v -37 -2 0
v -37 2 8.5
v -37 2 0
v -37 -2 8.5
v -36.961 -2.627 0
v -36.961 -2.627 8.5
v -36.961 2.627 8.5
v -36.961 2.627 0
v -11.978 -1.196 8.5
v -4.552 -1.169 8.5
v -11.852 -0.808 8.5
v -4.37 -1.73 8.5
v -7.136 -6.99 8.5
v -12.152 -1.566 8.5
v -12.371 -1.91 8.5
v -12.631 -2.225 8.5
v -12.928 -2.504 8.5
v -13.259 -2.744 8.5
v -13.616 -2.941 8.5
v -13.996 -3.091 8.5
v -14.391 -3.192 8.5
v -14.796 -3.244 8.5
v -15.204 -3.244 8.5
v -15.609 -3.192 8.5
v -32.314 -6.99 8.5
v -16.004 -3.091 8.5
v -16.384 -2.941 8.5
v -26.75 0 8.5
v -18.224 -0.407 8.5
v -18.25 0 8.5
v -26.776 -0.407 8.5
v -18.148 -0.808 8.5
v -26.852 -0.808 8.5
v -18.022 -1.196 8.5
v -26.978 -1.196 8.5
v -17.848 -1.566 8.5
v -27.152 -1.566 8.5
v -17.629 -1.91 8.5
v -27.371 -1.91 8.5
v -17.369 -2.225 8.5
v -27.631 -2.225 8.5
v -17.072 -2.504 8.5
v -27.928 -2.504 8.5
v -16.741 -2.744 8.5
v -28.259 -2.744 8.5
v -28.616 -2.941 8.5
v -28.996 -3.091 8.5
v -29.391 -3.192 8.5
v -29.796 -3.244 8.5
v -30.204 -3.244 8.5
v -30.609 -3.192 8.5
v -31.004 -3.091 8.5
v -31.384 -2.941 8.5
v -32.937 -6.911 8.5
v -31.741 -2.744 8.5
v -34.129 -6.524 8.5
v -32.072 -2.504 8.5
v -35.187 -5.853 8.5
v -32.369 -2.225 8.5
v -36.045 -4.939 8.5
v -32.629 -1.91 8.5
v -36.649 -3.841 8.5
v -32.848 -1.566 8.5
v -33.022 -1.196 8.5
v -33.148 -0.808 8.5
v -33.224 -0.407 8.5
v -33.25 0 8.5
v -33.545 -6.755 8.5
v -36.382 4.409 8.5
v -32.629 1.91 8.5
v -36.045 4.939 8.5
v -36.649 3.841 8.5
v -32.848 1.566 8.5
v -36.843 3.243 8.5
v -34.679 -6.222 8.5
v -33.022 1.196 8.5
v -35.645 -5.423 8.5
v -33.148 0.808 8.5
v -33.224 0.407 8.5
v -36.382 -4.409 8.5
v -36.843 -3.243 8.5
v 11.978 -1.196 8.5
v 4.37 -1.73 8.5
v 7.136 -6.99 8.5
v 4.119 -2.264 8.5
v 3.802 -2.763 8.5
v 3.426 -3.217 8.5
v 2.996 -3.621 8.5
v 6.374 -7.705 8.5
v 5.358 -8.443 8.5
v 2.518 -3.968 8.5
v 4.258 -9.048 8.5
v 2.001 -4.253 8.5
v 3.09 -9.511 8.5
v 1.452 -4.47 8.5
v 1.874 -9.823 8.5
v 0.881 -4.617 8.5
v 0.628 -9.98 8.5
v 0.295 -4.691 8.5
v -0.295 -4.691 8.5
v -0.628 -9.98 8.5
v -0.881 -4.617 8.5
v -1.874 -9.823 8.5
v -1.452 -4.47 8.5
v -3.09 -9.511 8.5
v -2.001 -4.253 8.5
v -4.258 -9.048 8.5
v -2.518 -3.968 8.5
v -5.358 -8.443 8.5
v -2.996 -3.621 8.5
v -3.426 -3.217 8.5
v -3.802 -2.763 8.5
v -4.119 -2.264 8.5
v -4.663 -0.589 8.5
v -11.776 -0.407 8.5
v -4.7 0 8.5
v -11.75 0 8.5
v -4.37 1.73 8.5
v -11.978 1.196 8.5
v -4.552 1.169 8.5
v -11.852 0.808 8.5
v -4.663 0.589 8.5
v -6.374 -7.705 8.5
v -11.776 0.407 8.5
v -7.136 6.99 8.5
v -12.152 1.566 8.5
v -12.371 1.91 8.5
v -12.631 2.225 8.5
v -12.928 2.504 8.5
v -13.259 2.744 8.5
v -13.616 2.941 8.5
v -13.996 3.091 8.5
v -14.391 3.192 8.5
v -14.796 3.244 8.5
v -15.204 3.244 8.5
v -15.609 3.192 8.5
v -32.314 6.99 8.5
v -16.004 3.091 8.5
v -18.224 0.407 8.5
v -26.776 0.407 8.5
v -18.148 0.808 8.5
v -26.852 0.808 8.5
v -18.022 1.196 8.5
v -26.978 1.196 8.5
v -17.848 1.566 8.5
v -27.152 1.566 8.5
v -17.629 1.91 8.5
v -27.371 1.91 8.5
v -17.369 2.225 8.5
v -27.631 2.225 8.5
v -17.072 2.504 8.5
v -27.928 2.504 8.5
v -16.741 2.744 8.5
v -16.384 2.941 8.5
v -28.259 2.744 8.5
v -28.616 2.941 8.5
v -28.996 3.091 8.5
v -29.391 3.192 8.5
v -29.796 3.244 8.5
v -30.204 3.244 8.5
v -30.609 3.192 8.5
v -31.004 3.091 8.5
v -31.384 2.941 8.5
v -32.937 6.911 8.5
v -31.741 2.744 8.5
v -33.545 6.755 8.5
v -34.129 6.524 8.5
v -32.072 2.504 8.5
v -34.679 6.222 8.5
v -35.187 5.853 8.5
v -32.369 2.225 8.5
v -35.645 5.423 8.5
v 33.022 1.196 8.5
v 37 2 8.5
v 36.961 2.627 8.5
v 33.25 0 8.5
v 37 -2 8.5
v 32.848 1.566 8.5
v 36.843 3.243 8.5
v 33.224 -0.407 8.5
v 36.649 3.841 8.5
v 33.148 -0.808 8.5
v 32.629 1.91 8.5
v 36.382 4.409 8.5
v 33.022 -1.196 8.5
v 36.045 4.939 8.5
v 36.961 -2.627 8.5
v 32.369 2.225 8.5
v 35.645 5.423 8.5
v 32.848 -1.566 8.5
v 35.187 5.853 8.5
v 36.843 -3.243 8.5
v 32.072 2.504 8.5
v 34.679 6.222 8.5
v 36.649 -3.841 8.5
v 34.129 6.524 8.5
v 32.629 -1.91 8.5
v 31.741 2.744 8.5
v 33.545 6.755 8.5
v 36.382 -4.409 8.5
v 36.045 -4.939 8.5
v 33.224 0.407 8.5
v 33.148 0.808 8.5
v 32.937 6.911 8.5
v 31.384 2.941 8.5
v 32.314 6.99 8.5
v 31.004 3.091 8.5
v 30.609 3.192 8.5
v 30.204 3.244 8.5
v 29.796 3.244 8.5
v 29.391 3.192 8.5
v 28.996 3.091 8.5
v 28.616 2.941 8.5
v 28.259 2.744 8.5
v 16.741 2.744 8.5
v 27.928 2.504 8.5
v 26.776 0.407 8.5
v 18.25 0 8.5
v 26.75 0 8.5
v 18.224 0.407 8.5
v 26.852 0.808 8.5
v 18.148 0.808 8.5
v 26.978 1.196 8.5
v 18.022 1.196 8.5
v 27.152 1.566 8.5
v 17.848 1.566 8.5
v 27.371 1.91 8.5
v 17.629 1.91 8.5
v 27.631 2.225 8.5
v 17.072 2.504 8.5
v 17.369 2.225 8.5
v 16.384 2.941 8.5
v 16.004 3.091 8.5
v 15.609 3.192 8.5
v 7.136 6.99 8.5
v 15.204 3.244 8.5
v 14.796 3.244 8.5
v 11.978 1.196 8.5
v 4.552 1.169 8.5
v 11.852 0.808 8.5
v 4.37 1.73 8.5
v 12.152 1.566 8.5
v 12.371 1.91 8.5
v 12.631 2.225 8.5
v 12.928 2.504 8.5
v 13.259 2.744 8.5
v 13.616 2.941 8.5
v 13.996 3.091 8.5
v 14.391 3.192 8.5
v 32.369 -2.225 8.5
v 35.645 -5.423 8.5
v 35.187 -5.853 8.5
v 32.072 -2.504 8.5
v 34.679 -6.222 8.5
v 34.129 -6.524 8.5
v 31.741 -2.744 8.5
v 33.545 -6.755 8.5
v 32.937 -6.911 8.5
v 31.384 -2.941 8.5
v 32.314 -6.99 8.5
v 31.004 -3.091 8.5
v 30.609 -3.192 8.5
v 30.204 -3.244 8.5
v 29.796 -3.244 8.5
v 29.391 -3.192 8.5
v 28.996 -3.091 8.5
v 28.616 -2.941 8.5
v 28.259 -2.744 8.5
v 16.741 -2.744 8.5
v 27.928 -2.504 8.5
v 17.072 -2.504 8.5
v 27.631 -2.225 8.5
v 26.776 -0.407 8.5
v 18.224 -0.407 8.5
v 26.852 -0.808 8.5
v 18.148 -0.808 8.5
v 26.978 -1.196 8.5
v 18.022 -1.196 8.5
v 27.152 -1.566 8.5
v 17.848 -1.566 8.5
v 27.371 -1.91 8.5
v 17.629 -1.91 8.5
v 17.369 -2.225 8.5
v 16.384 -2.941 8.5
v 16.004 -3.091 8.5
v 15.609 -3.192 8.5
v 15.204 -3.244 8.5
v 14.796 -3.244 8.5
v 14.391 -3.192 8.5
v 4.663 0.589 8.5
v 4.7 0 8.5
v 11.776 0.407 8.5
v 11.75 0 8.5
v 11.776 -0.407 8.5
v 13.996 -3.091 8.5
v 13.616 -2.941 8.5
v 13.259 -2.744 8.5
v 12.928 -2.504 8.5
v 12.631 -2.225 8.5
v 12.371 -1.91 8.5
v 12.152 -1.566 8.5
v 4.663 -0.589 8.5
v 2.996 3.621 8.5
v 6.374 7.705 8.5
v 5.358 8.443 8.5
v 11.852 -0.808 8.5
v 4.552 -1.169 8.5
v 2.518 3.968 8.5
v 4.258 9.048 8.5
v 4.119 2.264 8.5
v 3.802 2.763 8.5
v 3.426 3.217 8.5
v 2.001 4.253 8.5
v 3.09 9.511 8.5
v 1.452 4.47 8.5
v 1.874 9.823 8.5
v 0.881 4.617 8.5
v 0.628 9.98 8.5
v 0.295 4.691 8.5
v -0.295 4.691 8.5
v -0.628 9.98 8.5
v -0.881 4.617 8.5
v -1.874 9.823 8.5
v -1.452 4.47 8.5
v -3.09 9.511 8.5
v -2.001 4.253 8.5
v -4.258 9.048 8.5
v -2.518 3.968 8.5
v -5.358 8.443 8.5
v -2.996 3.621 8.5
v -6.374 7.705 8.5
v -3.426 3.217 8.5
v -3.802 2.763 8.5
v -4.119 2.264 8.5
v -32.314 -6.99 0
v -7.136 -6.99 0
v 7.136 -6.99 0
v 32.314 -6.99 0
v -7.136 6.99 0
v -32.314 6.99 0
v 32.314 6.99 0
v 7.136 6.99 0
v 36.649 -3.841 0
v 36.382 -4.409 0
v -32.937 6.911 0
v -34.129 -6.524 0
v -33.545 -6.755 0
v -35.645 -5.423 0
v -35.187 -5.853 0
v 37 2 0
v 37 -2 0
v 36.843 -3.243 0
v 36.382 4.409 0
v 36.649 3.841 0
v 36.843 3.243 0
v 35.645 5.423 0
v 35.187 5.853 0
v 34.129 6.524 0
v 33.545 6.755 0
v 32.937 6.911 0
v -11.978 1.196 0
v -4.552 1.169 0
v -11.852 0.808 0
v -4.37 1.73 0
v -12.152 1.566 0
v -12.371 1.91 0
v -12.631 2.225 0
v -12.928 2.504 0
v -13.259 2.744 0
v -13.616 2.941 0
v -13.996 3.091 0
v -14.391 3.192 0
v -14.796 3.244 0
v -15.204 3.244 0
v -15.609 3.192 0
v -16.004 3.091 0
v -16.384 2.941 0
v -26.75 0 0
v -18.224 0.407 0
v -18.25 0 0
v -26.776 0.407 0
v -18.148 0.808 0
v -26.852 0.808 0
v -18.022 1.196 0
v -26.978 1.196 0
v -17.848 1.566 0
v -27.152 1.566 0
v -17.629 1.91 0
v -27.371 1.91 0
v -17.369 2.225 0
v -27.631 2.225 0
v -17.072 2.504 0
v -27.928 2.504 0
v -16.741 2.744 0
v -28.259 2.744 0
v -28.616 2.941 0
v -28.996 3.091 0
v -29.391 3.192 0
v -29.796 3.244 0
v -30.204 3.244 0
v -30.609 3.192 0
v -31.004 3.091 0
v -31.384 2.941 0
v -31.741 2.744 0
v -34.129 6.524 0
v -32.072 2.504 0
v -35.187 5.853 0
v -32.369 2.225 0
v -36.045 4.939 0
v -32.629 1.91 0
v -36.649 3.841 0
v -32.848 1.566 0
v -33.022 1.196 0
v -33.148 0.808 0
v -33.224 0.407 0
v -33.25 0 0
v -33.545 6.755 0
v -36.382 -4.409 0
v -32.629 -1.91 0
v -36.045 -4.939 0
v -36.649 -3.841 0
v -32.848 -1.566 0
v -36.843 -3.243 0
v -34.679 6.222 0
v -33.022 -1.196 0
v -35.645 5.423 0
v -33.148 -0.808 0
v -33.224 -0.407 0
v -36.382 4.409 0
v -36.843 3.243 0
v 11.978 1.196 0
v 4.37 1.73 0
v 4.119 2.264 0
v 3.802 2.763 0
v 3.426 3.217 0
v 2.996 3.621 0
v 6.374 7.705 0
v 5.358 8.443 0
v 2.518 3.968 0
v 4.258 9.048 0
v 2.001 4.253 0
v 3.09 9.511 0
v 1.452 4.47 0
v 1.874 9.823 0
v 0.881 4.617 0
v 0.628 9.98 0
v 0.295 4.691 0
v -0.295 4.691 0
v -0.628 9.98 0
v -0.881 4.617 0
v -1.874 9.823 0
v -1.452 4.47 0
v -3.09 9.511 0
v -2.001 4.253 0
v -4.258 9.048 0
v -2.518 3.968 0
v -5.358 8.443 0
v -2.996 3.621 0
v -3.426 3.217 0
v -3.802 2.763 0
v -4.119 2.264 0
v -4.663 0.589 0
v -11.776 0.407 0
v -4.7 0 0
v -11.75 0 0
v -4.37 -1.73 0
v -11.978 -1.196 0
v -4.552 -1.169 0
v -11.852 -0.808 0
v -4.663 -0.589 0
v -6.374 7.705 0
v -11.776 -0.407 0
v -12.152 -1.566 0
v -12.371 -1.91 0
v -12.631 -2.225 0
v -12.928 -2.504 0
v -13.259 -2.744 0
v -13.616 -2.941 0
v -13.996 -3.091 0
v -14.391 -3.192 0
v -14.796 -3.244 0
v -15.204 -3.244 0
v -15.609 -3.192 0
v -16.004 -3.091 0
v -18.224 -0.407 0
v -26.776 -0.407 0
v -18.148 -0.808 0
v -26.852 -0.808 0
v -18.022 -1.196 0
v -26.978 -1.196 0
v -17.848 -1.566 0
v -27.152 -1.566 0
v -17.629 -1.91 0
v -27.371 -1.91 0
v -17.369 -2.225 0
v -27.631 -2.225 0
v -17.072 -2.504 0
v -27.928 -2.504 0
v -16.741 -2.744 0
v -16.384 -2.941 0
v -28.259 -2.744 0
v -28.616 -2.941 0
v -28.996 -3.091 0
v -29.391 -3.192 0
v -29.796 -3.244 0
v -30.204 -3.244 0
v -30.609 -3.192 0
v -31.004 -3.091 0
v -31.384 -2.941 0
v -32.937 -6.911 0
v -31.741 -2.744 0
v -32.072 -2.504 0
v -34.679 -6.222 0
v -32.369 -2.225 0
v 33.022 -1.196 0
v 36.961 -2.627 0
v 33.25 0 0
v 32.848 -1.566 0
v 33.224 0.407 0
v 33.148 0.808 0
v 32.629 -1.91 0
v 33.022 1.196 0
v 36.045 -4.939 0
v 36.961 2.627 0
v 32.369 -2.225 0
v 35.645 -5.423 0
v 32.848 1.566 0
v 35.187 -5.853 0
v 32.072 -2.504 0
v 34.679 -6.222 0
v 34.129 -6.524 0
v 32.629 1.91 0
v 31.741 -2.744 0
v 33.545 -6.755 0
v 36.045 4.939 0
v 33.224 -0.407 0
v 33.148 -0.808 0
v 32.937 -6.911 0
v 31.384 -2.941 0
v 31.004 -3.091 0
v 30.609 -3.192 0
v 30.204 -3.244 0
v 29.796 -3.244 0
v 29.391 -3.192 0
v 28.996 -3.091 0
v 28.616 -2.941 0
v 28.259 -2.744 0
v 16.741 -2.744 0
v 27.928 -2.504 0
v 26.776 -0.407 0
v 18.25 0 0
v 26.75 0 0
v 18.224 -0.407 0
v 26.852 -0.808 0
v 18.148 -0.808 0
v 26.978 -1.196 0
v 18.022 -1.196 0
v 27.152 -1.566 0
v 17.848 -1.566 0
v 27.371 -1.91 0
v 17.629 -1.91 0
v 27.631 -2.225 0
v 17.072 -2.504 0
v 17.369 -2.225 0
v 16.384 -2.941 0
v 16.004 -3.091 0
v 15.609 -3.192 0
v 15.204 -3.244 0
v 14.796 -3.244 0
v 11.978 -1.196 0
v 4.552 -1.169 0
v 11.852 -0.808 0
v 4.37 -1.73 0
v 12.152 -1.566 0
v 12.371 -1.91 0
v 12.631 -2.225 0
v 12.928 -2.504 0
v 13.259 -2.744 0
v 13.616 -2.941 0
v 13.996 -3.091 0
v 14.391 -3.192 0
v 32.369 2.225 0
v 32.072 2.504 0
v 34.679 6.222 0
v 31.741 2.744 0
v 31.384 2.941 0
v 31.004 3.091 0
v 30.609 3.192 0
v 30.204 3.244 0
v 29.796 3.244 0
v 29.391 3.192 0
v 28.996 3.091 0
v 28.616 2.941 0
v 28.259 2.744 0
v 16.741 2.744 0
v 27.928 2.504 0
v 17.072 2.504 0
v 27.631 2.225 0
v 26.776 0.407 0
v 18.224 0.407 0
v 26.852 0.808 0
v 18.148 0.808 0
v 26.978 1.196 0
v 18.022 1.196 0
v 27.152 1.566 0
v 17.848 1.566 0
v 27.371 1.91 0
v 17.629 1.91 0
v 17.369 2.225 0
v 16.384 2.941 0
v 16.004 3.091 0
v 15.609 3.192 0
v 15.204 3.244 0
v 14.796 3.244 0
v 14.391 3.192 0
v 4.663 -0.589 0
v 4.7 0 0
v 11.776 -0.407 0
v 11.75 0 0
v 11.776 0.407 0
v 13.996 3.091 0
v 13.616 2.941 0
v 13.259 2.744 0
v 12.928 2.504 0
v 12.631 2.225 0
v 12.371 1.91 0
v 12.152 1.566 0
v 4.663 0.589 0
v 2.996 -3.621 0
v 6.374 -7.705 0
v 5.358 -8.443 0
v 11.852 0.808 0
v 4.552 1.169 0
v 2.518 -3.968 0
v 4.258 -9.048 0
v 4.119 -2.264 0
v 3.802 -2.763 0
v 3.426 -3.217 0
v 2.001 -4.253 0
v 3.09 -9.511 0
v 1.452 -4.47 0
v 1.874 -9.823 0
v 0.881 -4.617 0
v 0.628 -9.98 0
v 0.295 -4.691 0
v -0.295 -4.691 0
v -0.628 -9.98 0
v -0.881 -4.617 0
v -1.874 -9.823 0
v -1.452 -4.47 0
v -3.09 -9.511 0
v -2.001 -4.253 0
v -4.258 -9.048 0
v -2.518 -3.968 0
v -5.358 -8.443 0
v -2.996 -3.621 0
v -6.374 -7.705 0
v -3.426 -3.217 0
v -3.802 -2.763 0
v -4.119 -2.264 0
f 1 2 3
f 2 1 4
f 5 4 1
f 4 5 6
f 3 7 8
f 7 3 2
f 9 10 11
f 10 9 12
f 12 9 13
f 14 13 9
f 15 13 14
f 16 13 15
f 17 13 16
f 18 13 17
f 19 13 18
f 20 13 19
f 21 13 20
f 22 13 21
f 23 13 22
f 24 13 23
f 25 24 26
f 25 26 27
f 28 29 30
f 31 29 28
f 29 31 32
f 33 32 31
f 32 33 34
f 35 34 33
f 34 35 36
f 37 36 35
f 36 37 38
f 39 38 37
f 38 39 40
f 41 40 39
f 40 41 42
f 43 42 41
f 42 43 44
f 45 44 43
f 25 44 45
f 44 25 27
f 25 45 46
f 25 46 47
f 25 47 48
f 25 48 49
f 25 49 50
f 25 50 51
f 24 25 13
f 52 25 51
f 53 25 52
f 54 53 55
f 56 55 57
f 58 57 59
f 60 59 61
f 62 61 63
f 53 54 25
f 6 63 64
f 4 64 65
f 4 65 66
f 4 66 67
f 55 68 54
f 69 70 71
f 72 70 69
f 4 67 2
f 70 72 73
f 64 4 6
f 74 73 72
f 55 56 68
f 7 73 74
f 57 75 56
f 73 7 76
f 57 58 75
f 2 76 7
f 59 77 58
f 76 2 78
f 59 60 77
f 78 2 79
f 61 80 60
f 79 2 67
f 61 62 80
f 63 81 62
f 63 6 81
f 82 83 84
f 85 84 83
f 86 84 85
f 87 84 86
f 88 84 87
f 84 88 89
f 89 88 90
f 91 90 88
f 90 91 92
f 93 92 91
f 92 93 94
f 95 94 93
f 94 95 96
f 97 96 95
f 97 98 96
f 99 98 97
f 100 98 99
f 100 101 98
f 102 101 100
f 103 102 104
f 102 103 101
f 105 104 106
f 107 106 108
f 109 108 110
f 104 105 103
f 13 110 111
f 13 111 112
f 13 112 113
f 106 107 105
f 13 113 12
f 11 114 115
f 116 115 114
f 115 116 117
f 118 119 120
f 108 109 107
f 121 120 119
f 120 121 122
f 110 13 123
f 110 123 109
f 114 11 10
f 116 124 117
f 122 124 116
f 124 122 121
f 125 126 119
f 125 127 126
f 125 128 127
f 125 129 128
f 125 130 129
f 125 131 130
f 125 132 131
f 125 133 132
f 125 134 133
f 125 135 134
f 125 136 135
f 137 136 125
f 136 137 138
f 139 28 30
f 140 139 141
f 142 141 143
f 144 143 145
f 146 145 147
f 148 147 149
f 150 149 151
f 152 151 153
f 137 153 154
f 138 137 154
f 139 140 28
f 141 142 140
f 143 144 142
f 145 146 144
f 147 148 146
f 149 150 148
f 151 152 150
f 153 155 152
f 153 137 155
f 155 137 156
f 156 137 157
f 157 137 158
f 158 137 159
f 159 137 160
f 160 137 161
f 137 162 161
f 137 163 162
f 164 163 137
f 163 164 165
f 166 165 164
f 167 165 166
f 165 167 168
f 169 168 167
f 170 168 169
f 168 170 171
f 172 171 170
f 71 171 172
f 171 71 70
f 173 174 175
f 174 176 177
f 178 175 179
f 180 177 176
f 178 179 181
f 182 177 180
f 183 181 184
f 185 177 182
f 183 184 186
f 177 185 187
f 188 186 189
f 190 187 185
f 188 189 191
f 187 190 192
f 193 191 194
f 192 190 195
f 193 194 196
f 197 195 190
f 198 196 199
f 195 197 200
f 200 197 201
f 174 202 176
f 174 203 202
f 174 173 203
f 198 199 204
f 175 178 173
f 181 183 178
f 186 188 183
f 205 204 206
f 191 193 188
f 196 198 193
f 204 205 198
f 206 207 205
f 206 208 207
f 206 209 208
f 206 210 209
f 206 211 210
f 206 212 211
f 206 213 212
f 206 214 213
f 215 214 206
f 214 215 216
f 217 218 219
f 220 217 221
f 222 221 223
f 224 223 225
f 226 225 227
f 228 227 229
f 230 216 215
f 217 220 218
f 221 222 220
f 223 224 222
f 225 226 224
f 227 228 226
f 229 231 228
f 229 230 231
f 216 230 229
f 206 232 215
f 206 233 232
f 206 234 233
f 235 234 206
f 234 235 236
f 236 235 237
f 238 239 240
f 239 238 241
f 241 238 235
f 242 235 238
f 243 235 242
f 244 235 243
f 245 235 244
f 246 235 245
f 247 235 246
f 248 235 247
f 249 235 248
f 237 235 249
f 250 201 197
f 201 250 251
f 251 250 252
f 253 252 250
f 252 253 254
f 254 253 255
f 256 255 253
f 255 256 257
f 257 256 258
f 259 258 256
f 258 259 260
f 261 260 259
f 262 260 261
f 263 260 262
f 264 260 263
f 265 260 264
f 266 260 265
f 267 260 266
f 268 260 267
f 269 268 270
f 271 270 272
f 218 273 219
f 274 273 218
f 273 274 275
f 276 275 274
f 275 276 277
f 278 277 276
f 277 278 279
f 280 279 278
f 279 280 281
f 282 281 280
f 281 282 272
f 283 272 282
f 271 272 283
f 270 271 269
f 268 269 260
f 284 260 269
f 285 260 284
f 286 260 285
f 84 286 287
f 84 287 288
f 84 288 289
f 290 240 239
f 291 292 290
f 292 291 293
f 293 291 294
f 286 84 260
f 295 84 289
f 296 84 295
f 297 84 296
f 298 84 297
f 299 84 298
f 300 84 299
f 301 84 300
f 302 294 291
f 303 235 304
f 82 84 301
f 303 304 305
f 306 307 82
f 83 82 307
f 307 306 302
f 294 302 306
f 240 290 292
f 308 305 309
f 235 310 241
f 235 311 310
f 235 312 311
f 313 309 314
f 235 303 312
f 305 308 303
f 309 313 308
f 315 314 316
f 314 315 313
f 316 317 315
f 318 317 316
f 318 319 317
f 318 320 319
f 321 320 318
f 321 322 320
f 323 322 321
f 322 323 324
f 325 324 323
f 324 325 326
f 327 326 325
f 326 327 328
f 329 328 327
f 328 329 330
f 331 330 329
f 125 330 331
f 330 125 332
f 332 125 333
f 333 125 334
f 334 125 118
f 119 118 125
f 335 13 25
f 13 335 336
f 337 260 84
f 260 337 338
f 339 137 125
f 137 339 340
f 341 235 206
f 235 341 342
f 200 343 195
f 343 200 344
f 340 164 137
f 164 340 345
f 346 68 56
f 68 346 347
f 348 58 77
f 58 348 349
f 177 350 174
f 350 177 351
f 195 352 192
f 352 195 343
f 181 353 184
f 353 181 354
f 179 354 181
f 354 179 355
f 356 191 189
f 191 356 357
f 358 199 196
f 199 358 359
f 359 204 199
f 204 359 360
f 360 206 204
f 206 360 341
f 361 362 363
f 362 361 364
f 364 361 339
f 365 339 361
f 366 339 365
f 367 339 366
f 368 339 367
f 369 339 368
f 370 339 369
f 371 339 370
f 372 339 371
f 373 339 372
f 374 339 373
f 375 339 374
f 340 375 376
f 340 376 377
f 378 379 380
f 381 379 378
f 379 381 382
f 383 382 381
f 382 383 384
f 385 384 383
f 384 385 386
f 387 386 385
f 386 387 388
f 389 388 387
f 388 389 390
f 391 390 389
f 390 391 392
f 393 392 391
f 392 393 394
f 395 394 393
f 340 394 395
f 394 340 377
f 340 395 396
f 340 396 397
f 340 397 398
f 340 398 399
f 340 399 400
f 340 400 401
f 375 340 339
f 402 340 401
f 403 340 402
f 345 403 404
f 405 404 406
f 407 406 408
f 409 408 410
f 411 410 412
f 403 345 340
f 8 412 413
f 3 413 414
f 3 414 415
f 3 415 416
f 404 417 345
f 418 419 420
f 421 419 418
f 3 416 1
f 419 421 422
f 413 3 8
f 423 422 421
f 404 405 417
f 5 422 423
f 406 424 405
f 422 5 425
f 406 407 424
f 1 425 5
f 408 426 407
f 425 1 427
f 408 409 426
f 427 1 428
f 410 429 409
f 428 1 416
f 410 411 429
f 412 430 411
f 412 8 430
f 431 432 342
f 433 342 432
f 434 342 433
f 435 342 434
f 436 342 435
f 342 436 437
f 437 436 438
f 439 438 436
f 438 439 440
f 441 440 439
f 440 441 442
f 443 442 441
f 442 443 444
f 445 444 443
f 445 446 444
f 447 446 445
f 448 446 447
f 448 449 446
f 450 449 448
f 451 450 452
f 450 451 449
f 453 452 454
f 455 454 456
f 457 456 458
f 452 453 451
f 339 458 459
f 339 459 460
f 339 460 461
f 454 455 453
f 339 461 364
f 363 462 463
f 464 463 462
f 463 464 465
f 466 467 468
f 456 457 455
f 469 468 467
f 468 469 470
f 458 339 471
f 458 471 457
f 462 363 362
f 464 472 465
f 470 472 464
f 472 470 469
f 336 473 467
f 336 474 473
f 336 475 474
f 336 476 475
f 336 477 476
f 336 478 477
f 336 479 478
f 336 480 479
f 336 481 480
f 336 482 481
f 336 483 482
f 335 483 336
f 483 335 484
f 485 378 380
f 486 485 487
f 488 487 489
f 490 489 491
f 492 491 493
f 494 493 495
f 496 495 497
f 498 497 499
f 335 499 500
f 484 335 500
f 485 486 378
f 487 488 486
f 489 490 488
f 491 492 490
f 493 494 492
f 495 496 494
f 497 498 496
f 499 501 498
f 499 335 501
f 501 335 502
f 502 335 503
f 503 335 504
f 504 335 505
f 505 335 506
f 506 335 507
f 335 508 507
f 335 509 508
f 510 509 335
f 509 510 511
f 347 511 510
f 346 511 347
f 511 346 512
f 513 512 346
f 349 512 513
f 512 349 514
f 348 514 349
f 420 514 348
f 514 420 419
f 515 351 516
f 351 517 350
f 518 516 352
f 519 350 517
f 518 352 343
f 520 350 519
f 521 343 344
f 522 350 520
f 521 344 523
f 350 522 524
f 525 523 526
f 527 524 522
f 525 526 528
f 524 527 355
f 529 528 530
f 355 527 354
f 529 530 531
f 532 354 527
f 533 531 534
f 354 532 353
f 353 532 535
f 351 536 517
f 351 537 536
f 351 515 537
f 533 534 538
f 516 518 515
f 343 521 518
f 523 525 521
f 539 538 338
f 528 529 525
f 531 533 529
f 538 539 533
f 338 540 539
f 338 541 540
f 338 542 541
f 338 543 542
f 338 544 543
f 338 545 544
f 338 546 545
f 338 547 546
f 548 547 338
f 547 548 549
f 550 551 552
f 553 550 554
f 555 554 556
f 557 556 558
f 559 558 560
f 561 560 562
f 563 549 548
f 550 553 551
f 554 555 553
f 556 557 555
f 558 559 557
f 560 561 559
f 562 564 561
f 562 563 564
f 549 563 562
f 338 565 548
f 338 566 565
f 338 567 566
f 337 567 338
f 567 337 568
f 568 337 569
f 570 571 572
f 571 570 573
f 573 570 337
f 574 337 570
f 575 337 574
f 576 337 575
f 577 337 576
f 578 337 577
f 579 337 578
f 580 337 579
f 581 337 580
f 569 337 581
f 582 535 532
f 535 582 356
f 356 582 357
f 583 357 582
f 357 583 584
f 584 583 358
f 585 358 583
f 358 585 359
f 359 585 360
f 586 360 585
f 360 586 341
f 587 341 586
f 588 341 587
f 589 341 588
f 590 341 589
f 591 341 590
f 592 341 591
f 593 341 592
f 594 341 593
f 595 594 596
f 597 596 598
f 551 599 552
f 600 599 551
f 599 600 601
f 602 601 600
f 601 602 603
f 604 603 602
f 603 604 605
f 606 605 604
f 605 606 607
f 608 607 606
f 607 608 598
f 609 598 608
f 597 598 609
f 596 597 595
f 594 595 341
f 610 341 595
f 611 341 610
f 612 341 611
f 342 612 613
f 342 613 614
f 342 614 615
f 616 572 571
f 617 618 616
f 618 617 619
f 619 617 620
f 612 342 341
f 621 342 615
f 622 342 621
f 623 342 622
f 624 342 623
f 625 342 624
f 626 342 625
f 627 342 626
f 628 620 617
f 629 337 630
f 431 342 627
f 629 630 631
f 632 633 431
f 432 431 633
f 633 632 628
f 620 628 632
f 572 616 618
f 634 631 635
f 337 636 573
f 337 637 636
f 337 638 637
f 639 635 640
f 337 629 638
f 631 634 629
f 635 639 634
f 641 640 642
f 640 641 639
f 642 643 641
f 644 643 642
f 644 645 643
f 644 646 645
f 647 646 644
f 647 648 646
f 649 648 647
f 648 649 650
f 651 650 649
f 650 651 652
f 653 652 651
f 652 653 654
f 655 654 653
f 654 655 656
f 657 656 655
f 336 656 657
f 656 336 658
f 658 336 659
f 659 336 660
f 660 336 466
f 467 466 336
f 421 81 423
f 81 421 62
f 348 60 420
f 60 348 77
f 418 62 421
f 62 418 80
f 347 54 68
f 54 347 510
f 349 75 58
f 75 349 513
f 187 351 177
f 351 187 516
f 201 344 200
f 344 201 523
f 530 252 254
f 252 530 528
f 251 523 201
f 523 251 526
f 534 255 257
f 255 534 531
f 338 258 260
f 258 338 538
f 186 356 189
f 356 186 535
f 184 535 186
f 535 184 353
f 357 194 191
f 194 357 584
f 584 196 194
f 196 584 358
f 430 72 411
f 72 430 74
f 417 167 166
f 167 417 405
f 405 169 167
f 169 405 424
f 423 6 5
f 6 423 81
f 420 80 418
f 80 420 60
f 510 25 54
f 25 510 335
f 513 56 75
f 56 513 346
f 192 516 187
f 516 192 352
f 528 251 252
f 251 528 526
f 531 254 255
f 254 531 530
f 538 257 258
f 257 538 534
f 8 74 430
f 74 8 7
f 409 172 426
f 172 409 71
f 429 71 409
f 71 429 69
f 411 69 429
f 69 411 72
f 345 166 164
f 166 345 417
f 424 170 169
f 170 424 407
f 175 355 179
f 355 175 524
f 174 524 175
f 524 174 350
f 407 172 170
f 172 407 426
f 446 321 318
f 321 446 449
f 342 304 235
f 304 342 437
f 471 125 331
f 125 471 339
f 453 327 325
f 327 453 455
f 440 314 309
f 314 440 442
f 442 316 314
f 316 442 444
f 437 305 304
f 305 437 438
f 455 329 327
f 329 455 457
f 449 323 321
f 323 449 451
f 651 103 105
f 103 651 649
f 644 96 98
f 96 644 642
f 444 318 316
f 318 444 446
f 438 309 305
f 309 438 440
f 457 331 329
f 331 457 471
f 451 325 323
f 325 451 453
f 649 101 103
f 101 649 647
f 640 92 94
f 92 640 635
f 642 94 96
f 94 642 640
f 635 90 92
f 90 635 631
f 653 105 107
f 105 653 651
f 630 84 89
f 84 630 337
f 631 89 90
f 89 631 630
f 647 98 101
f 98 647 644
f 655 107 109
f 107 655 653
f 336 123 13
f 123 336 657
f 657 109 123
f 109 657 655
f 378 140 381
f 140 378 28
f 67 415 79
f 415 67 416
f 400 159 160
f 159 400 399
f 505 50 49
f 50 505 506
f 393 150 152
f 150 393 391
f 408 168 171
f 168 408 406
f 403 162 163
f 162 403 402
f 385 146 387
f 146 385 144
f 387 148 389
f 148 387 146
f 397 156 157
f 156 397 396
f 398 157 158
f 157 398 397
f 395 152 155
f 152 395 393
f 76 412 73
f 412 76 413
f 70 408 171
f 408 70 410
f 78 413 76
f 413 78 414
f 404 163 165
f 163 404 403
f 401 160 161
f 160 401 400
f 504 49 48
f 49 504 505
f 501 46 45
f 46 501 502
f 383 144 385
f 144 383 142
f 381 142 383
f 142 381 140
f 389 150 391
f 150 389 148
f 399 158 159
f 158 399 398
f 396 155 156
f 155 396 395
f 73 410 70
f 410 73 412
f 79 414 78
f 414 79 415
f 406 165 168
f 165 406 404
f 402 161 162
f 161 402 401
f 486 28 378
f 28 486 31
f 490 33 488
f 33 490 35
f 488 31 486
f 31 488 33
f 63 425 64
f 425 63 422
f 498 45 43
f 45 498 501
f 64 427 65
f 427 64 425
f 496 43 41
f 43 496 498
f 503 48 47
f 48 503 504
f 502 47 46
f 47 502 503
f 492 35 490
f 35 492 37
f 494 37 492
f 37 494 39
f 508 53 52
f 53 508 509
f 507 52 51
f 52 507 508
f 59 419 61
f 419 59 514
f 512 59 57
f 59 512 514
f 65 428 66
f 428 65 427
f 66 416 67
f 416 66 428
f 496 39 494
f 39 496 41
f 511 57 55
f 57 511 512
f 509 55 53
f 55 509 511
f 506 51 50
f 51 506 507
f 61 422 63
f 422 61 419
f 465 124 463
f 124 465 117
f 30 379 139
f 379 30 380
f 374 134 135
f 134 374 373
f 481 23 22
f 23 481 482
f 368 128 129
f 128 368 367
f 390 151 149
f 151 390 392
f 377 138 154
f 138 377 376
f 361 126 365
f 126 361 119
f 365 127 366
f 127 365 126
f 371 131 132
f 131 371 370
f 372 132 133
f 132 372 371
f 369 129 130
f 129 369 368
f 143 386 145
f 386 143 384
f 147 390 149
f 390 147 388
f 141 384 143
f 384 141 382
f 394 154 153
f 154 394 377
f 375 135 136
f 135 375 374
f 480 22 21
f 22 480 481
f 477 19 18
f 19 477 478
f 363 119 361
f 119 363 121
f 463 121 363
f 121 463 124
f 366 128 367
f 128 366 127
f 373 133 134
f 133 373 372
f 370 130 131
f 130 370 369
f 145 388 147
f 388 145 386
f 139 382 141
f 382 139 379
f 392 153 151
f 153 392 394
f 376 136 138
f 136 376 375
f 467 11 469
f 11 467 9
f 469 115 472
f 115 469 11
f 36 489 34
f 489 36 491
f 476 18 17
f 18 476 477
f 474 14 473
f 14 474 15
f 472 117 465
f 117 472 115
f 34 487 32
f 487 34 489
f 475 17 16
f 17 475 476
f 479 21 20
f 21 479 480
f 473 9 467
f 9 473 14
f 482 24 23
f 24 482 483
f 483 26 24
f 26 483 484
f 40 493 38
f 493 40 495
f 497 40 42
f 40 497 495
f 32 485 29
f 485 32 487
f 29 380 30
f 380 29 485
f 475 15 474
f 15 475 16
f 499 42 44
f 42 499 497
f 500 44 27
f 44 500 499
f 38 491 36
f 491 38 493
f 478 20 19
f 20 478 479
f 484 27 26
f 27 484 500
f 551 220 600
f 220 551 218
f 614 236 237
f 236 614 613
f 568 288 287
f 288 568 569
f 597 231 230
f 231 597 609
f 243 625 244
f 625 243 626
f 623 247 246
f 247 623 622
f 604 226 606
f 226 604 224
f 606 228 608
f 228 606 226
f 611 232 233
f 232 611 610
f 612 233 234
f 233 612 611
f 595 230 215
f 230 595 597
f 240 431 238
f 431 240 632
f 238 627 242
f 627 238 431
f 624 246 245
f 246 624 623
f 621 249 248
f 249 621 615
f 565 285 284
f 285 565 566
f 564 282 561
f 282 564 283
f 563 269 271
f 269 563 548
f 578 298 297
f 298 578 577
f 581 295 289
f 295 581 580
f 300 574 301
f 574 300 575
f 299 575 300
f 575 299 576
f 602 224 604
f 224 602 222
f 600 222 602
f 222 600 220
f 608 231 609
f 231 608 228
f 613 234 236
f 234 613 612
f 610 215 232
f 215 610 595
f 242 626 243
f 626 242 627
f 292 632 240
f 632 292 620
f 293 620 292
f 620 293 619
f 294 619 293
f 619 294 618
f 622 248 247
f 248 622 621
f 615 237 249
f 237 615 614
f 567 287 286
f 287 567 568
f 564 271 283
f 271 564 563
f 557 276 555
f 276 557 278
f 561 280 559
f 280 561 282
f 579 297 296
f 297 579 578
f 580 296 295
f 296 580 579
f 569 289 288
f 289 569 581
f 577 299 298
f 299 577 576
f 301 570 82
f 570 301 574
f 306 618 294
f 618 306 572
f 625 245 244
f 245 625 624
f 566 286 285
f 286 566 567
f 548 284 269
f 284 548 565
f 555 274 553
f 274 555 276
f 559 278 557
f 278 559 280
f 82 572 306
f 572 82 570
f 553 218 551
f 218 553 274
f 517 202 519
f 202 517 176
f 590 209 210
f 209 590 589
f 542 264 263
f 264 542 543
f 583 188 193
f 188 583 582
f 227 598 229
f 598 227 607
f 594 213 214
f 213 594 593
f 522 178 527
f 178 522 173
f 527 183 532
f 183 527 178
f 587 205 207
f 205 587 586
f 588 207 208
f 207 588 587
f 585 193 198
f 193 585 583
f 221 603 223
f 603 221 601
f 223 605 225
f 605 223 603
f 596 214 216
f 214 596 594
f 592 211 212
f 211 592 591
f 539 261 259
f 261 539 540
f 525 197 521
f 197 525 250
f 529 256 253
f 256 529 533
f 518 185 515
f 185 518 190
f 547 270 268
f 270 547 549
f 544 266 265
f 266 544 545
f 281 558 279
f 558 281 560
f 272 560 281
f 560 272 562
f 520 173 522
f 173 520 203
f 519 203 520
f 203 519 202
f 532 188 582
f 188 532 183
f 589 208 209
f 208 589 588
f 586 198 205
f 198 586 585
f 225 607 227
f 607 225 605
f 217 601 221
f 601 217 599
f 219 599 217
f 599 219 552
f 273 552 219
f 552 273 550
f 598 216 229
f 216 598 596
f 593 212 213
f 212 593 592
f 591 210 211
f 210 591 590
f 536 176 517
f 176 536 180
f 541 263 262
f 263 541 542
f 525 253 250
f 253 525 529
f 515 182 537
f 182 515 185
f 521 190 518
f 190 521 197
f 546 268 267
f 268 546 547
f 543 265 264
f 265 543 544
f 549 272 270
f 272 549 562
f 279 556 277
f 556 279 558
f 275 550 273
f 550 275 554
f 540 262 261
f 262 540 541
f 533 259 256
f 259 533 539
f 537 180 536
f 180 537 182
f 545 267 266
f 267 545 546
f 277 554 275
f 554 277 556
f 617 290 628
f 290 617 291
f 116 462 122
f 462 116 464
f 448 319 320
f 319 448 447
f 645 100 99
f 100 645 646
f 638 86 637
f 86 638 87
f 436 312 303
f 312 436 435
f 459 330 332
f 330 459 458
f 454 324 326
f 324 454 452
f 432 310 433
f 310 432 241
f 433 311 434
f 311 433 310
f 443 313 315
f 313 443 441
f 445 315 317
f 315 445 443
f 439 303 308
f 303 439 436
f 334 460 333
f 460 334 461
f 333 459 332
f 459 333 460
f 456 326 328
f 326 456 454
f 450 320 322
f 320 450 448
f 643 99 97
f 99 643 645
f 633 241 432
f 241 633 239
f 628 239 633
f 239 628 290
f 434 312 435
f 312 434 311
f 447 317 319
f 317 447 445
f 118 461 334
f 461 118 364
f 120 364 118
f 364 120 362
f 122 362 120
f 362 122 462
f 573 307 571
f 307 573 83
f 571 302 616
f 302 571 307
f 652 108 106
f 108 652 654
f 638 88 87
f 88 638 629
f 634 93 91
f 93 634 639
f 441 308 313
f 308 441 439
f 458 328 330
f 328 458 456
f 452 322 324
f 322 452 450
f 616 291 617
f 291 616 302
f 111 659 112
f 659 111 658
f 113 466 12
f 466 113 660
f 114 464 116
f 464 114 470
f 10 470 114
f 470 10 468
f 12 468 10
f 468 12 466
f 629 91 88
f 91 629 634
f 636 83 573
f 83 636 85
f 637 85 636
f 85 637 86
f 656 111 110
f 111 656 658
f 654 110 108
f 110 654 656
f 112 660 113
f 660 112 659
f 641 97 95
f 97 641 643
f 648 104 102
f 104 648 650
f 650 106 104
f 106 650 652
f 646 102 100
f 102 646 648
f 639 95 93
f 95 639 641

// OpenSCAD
$fn = 50;


difference() {
	union() {
		translate(v = [0, 0, 0]) {
			rotate(a = [0, 0, 0]) {
				hull() {
					translate(v = [-32.0000000000, 2.0000000000, 0]) {
						rotate(a = [0, 0, 0]) {
							translate(v = [0, 0, 0]) {
								rotate(a = [0, 0, 0]) {
									cylinder(h = 8.5000000000, r = 5);
								}
							}
						}
					}
					translate(v = [32.0000000000, 2.0000000000, 0]) {
						rotate(a = [0, 0, 0]) {
							translate(v = [0, 0, 0]) {
								rotate(a = [0, 0, 0]) {
									cylinder(h = 8.5000000000, r = 5);
								}
							}
						}
					}
					translate(v = [-32.0000000000, -2.0000000000, 0]) {
						rotate(a = [0, 0, 0]) {
							translate(v = [0, 0, 0]) {
								rotate(a = [0, 0, 0]) {
									cylinder(h = 8.5000000000, r = 5);
								}
							}
						}
					}
					translate(v = [32.0000000000, -2.0000000000, 0]) {
						rotate(a = [0, 0, 0]) {
							translate(v = [0, 0, 0]) {
								rotate(a = [0, 0, 0]) {
									cylinder(h = 8.5000000000, r = 5);
								}
							}
						}
					}
				}
			}
		}
		translate(v = [0, 0, 0.0000000000]) {
			rotate(a = [0, 0, 0]) {
				cylinder(h = 8.5000000000, r = 10.0000000000);
			}
		}
	}
	union() {
		translate(v = [-30.0000000000, 0.0000000000, 0]) {
			rotate(a = [0, 0, 0]) {
				translate(v = [0, 0, -50]) {
					rotate(a = [0, 0, 0]) {
						cylinder(h = 100, r = 3.2500000000);
					}
				}
			}
		}
		translate(v = [-15.0000000000, 0.0000000000, 0]) {
			rotate(a = [0, 0, 0]) {
				translate(v = [0, 0, -50]) {
					rotate(a = [0, 0, 0]) {
						cylinder(h = 100, r = 3.2500000000);
					}
				}
			}
		}
		translate(v = [0.0000000000, 0.0000000000, 0]) {
			rotate(a = [0, 0, 0]) {
				translate(v = [0, 0, -50]) {
					rotate(a = [0, 0, 0]) {
						cylinder(h = 100, r = 3.2500000000);
					}
				}
			}
		}
		translate(v = [15.0000000000, 0.0000000000, 0]) {
			rotate(a = [0, 0, 0]) {
				translate(v = [0, 0, -50]) {
					rotate(a = [0, 0, 0]) {
						cylinder(h = 100, r = 3.2500000000);
					}
				}
			}
		}
		translate(v = [30.0000000000, 0.0000000000, 0]) {
			rotate(a = [0, 0, 0]) {
				translate(v = [0, 0, -50]) {
					rotate(a = [0, 0, 0]) {
						cylinder(h = 100, r = 3.2500000000);
					}
				}
			}
		}
		translate(v = [0, 0, -125.0000000000]) {
			rotate(a = [0, 0, 0]) {
				cylinder(h = 250, r = 4.7000000000);
			}
		}
	}
}
